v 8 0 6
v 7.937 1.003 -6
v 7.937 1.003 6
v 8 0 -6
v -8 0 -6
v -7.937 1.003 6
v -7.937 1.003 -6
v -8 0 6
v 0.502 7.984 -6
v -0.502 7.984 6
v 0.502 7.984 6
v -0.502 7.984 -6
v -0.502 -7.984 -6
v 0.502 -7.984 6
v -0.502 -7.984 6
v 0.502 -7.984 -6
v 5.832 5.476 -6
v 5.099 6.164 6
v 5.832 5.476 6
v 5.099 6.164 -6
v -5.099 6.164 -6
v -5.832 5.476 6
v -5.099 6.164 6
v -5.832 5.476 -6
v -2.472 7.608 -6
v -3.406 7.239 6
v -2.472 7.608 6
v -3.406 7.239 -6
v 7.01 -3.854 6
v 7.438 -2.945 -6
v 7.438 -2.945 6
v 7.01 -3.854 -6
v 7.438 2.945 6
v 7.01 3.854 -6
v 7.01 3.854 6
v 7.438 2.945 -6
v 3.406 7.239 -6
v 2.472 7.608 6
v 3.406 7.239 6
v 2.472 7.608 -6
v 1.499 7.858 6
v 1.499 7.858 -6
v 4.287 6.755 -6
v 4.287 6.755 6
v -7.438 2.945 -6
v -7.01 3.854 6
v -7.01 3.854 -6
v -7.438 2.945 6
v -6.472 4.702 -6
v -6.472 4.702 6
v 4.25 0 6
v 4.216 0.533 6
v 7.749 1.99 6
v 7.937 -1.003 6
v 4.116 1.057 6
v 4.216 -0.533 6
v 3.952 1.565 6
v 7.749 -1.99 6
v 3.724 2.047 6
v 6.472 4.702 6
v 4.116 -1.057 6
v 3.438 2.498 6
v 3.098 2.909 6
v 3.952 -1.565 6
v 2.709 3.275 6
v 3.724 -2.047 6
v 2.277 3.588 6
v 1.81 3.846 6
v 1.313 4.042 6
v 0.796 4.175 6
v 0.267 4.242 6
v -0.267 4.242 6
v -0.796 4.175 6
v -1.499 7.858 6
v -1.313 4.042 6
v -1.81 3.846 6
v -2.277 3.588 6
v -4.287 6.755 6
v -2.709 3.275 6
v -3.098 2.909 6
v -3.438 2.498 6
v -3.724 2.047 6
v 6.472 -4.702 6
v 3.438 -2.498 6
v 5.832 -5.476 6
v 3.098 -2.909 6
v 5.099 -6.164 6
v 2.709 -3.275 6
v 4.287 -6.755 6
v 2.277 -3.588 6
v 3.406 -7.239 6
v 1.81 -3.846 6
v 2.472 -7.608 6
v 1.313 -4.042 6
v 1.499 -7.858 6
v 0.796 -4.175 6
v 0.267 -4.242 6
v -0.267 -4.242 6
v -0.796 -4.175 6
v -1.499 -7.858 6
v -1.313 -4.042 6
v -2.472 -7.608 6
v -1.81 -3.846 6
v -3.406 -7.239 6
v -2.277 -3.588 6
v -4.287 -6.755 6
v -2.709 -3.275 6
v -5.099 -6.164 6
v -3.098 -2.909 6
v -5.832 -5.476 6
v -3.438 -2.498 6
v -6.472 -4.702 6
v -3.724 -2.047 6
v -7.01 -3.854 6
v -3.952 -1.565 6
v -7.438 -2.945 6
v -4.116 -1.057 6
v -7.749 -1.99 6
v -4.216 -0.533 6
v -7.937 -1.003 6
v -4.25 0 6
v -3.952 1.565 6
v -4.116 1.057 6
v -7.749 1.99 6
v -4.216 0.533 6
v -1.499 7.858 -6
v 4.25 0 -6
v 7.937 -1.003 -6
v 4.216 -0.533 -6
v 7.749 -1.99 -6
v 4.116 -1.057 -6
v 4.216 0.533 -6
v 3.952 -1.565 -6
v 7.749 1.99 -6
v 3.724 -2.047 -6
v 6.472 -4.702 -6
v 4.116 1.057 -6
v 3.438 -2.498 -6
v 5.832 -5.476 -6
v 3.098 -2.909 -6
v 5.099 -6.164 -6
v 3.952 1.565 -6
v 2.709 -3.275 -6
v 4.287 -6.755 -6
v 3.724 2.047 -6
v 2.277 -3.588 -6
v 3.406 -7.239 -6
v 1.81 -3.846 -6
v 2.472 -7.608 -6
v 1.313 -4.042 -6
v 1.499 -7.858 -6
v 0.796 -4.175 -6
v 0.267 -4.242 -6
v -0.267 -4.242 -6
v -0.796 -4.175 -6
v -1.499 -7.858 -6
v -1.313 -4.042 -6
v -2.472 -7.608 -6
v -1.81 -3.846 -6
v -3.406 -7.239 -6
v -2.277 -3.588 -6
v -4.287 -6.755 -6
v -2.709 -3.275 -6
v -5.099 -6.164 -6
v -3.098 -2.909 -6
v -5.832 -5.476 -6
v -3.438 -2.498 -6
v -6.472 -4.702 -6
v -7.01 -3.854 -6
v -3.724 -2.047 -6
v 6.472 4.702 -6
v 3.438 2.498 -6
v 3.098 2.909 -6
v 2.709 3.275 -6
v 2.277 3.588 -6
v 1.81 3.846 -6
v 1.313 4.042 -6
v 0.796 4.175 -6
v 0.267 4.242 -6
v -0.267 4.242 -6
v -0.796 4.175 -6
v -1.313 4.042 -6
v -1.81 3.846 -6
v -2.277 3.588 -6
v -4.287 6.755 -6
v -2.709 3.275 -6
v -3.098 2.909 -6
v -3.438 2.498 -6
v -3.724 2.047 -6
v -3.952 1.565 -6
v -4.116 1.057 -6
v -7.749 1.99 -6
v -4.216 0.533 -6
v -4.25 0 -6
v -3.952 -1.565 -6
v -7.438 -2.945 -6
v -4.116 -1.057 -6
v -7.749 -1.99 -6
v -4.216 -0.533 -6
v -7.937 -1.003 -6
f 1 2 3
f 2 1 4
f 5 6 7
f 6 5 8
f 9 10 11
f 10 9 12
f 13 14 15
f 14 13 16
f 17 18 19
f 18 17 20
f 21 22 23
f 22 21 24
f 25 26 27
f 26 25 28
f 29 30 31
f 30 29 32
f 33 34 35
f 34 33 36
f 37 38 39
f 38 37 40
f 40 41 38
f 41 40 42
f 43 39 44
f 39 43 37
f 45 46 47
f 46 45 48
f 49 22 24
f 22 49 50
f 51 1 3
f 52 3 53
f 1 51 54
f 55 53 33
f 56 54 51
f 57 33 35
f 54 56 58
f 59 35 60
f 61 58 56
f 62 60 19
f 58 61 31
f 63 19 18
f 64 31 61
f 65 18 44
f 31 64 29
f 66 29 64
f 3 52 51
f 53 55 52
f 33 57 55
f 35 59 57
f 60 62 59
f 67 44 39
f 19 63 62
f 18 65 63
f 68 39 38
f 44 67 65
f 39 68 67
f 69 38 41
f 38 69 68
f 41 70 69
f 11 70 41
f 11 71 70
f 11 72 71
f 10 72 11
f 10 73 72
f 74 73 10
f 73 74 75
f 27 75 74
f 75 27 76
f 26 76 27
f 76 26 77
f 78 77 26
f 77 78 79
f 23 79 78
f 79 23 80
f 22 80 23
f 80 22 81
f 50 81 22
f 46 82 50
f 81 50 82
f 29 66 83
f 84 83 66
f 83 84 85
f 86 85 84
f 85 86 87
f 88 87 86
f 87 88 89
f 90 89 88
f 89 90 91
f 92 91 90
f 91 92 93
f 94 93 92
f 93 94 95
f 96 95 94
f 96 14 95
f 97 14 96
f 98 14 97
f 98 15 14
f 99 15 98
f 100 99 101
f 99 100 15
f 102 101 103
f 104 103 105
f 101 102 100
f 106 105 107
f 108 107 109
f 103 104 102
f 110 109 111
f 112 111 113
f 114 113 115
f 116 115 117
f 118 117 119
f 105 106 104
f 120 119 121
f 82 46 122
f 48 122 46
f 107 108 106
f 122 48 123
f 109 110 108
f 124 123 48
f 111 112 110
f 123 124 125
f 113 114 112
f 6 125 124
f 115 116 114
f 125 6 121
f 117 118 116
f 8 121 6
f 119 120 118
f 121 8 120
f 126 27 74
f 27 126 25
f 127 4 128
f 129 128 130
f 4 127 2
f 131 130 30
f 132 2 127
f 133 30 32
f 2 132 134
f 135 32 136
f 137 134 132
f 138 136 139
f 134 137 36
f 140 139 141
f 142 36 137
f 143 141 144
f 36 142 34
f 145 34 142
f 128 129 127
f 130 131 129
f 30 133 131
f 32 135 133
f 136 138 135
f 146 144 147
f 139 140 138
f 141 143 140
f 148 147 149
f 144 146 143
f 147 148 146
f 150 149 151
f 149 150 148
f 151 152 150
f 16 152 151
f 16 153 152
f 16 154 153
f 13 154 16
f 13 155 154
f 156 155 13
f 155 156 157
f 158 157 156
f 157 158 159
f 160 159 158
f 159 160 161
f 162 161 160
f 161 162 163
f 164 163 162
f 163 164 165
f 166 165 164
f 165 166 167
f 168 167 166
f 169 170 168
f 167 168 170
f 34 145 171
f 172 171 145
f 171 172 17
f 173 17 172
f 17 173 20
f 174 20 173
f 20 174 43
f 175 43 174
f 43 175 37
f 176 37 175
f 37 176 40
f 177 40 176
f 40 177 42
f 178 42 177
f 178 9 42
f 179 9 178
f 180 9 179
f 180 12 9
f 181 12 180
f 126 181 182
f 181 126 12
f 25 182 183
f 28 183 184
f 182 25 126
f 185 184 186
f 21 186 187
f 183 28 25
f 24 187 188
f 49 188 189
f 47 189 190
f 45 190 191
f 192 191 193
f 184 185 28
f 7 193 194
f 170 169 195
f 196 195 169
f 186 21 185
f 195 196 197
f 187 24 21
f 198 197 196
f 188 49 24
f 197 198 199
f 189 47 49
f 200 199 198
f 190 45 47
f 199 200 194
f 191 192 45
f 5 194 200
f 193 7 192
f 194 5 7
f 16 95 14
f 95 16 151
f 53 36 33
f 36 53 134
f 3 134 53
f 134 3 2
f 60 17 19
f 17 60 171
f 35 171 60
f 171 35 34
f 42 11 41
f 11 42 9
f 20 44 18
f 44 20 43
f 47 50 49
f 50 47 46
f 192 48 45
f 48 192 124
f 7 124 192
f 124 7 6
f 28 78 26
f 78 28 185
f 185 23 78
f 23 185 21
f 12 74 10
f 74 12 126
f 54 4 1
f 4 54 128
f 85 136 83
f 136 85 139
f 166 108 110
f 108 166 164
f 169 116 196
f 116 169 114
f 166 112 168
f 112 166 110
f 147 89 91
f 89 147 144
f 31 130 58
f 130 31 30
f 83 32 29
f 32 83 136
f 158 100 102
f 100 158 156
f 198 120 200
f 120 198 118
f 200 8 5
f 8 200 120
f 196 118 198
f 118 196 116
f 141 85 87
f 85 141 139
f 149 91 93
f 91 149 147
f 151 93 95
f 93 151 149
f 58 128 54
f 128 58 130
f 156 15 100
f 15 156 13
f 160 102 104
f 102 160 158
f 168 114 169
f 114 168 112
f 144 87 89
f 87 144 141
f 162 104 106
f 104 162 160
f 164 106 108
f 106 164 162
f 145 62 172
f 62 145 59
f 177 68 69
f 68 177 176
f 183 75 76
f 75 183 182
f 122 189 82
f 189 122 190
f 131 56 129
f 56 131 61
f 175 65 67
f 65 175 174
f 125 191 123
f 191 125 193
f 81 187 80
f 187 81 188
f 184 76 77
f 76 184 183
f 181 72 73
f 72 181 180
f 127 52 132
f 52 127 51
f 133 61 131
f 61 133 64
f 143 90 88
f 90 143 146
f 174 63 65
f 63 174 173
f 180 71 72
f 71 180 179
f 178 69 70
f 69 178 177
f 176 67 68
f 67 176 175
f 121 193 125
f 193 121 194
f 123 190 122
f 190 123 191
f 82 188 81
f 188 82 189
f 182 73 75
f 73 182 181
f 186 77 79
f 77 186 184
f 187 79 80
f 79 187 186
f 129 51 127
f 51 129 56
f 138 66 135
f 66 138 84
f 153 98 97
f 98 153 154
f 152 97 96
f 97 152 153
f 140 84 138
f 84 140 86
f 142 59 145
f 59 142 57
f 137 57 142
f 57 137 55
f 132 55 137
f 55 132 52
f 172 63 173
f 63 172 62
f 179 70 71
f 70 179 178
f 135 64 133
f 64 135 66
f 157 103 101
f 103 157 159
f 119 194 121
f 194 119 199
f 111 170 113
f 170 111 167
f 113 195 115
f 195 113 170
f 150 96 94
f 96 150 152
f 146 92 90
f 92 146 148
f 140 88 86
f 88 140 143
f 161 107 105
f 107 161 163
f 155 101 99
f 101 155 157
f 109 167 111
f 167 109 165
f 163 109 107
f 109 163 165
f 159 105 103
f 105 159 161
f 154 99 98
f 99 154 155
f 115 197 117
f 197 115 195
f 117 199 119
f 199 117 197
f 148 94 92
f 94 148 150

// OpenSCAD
$fn = 50;


difference() {
	union() {
		translate(v = [0, 0, -6.0000000000]) {
			cylinder(h = 12, r = 8.0000000000);
		}
	}
	union() {
		translate(v = [0, 0, -100.0000000000]) {
			cylinder(h = 200, r = 4.2500000000);
		}
	}
}
